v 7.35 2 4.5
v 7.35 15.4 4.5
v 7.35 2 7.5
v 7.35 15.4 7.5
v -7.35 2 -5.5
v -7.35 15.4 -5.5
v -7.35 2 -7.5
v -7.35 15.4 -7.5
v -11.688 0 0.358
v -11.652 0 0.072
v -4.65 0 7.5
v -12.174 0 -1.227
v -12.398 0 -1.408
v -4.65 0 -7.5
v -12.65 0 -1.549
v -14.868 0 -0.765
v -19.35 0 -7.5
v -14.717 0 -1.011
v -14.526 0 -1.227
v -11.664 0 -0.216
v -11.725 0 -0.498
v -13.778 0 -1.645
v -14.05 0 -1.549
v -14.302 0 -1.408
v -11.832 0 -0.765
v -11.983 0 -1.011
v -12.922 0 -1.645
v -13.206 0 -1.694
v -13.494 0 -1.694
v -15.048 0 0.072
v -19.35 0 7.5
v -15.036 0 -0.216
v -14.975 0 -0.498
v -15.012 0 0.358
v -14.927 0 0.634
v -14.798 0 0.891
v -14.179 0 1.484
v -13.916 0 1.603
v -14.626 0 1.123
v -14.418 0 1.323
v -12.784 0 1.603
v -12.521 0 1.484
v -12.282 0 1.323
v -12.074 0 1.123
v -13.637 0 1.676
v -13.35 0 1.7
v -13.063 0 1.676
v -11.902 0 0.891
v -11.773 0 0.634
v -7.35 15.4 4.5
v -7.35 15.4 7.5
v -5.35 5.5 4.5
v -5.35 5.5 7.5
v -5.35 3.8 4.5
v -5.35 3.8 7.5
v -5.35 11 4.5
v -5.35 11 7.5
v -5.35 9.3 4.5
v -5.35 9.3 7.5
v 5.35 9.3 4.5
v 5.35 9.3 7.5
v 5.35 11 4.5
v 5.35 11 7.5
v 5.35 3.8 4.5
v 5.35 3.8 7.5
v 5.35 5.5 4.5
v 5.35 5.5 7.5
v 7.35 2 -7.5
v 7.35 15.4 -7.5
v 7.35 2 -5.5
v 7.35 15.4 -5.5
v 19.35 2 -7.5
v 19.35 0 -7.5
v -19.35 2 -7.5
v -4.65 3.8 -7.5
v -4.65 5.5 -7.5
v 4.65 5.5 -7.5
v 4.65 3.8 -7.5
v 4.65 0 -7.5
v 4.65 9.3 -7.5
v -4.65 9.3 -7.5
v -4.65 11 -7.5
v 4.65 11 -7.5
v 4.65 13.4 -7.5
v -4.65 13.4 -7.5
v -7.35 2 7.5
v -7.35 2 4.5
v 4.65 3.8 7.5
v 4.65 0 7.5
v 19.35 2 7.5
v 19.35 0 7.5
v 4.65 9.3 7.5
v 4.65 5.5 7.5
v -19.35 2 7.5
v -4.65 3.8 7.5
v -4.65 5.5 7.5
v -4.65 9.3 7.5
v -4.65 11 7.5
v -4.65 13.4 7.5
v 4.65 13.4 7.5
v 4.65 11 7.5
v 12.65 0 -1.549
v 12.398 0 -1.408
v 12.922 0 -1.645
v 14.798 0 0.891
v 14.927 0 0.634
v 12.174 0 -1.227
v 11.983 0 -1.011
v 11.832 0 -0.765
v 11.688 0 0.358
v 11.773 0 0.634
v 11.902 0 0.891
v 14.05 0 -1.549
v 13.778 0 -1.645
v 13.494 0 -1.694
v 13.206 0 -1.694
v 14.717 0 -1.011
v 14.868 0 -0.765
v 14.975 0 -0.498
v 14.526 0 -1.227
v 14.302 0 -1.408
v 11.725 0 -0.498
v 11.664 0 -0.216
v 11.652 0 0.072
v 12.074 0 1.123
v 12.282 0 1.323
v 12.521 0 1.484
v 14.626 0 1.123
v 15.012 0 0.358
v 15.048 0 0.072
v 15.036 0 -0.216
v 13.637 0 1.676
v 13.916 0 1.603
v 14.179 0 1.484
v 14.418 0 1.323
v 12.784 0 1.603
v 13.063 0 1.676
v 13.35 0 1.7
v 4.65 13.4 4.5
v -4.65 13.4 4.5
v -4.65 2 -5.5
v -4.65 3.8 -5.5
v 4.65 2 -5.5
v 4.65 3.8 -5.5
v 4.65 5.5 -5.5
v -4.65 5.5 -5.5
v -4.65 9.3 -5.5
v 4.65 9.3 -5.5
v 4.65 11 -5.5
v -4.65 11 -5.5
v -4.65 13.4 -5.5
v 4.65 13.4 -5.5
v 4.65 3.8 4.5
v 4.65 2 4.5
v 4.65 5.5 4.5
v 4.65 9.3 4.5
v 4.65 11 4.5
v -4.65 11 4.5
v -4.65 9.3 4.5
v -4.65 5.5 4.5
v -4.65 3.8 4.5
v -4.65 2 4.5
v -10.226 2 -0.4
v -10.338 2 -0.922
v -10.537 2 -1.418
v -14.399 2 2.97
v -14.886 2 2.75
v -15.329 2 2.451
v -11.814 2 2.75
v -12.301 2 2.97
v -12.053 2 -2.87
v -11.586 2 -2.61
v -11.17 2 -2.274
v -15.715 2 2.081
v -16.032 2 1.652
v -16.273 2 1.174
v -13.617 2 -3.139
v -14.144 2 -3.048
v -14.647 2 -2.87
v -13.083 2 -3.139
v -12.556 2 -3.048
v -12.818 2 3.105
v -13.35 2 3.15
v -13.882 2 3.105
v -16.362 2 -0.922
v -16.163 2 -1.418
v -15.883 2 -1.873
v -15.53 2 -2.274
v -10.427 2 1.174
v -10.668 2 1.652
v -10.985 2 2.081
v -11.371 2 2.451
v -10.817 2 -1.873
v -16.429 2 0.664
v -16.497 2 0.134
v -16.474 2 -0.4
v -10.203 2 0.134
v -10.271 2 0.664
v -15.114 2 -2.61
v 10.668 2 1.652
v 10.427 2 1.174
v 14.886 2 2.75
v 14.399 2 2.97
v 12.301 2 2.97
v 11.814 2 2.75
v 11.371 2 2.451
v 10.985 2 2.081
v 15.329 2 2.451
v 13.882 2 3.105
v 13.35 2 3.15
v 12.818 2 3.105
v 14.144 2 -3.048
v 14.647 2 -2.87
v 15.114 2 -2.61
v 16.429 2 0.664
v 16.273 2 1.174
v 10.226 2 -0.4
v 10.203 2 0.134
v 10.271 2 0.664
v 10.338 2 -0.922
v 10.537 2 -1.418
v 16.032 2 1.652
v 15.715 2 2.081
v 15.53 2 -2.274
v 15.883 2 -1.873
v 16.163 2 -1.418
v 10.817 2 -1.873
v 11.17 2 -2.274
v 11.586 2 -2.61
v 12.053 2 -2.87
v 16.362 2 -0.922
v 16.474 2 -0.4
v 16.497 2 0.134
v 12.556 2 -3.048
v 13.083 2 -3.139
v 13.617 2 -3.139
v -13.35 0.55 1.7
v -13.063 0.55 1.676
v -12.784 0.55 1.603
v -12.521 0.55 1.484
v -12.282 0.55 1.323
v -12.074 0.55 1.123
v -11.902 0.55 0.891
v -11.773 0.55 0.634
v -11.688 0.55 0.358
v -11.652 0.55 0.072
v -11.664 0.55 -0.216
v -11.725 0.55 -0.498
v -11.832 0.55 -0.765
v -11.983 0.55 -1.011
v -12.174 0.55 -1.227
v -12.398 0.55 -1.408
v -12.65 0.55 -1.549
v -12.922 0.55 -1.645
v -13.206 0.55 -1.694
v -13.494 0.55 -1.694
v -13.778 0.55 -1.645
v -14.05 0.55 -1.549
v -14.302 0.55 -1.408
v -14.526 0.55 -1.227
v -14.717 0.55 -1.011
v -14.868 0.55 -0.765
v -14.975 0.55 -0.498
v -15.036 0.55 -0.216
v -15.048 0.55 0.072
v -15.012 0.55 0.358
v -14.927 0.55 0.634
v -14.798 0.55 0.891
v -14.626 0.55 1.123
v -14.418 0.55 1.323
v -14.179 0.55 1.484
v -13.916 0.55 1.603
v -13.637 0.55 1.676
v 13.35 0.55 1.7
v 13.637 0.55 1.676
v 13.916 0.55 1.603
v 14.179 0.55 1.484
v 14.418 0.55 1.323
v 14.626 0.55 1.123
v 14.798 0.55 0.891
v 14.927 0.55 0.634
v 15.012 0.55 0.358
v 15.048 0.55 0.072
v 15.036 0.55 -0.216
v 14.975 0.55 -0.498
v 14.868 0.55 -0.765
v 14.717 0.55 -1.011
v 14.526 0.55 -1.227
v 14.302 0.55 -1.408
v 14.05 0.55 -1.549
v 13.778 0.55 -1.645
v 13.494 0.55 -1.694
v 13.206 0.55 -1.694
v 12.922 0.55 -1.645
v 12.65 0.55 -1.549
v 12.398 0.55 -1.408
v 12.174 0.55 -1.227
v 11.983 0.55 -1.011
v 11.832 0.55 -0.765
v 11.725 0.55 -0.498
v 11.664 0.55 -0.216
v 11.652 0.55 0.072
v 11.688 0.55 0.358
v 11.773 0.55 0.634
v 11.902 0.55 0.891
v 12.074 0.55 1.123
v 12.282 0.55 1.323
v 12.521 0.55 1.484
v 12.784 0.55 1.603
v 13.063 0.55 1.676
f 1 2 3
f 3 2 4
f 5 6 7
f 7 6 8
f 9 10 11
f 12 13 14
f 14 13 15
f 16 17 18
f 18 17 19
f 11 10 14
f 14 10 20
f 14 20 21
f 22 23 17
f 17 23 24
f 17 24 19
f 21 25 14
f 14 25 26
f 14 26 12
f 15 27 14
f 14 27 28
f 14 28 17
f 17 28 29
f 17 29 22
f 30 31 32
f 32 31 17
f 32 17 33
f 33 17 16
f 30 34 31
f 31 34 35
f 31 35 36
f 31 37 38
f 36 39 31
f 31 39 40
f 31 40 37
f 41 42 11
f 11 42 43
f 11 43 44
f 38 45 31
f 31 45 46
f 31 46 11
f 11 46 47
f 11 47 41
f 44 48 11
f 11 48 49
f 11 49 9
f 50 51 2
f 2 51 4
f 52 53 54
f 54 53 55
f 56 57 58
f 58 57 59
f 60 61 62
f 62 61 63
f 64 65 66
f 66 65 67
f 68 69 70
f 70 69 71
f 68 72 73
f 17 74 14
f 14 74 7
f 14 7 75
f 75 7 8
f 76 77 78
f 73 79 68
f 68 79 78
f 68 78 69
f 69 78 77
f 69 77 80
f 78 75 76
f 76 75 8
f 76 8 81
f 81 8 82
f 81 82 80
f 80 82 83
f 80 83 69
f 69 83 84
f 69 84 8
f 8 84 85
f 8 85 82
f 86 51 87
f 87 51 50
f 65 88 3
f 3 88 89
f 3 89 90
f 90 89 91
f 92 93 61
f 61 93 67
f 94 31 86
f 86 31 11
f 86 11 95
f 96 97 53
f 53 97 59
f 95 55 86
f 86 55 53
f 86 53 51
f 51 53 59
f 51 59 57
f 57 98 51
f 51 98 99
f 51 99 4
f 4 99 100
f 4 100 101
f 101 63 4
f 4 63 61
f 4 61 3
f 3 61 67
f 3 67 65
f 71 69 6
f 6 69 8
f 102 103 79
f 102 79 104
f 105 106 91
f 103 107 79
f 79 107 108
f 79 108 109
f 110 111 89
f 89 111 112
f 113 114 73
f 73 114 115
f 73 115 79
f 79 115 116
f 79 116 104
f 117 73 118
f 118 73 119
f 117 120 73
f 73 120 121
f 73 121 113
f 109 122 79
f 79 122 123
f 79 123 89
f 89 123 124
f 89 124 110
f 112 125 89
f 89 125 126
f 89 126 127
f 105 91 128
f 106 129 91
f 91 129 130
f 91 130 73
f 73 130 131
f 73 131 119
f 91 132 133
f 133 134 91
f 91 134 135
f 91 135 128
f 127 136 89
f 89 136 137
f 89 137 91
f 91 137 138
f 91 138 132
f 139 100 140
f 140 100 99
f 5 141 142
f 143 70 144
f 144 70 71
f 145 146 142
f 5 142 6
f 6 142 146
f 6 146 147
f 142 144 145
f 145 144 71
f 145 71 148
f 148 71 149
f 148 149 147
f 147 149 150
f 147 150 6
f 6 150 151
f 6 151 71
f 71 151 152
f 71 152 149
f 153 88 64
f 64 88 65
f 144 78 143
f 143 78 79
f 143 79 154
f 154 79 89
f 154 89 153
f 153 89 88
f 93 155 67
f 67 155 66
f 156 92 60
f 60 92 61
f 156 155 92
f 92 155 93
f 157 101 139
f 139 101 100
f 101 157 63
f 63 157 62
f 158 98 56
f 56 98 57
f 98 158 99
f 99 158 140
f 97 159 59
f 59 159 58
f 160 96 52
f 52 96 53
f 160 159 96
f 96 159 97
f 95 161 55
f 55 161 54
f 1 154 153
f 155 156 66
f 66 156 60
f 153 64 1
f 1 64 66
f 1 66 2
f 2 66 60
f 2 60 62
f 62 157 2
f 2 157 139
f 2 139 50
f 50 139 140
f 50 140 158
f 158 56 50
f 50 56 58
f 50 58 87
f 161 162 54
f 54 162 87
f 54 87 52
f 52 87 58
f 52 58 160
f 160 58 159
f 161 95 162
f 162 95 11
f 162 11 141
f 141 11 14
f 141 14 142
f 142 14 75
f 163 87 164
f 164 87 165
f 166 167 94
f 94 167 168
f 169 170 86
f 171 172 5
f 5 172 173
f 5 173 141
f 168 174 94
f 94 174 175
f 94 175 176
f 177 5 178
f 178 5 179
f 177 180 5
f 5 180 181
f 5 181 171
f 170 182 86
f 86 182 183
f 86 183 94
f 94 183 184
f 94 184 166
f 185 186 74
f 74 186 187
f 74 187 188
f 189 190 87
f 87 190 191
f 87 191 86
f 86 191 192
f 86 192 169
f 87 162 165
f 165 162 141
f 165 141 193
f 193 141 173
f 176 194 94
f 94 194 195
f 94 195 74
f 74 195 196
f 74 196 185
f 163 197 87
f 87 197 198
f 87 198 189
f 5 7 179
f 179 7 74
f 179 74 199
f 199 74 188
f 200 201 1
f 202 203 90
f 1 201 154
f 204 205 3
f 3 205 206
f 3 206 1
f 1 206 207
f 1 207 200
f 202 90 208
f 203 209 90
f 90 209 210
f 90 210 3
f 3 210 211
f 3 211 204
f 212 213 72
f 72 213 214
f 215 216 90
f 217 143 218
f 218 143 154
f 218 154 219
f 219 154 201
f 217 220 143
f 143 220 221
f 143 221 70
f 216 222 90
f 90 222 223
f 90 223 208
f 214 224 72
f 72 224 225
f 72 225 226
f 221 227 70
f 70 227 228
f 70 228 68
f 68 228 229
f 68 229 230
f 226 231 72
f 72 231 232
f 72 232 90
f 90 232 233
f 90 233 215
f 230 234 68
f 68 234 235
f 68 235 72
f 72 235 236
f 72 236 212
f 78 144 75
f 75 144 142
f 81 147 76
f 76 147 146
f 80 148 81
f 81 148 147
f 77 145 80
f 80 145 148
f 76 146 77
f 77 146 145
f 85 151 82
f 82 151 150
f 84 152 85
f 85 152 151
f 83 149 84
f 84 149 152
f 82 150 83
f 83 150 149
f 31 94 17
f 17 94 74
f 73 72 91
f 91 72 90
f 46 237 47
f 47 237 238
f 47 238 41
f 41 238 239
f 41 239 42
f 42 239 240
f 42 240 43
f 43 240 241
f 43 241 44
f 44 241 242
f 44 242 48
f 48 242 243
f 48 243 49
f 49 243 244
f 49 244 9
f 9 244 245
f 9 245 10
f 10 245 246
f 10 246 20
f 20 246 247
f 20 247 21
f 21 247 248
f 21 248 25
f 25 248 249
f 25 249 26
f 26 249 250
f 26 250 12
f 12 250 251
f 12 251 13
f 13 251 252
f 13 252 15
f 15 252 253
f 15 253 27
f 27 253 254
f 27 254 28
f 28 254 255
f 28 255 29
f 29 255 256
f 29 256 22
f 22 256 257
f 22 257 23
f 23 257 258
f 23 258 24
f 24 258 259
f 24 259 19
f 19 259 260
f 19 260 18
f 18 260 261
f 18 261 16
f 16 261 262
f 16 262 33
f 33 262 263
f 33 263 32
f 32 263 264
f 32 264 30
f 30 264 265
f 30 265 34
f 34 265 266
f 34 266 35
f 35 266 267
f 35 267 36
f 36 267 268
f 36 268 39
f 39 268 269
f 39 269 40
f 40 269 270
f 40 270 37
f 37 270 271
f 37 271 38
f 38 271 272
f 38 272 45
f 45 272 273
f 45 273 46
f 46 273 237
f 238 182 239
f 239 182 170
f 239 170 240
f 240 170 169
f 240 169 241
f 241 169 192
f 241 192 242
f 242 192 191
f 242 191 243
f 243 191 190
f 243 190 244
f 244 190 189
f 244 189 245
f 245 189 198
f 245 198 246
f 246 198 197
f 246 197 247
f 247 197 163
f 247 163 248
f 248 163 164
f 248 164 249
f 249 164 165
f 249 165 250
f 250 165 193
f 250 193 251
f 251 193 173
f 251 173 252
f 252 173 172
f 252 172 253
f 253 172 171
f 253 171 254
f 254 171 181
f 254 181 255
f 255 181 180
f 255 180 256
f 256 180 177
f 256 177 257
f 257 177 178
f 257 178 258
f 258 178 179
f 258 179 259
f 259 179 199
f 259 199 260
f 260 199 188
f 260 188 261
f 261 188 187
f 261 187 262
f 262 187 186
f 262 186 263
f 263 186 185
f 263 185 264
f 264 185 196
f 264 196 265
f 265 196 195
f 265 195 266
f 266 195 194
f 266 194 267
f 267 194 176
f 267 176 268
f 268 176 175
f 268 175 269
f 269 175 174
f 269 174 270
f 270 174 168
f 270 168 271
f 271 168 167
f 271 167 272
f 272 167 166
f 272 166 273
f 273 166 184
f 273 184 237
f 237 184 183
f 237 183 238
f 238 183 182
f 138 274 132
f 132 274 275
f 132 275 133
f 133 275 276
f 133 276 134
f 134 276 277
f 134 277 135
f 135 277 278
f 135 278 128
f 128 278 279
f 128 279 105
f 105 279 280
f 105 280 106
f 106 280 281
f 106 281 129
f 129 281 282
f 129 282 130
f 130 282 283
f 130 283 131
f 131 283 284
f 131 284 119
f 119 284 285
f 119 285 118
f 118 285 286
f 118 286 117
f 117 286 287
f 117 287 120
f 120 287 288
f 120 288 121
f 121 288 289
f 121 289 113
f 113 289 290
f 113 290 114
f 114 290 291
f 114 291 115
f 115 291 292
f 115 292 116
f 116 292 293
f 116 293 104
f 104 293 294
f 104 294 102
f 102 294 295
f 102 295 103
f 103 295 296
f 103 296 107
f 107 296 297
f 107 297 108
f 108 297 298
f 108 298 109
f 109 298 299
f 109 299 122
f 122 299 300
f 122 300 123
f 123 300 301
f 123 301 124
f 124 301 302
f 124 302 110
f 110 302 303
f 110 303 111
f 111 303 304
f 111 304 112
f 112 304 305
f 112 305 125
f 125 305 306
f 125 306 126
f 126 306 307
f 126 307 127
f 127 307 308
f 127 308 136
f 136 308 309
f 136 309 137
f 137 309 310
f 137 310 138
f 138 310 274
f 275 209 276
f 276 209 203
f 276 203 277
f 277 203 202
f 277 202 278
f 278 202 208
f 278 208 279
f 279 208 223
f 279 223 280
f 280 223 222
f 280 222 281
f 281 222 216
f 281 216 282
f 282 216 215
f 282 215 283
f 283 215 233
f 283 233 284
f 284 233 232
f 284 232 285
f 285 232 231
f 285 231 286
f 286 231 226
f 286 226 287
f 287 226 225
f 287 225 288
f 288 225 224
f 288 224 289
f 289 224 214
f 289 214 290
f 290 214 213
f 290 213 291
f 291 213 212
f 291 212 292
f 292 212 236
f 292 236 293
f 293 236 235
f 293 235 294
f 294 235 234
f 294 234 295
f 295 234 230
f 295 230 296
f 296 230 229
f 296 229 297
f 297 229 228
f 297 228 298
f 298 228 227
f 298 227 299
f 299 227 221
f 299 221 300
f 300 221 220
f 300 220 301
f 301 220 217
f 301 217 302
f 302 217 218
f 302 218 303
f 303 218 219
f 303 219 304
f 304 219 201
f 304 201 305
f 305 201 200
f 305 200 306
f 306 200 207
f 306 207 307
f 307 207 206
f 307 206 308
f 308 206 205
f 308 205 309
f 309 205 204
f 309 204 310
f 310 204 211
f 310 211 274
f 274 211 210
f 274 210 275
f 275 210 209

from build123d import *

# Parameters (mm, degrees)
SKETCH1_W                = 14.7
SKETCH1_H                = 15
BOSS_EXTRUDE1_DEPTH      = 15.4
SKETCH2_W                = 10.7
SKETCH2_H                = 14.684086862
CUT_EXTRUDE1_DEPTH       = 13
SKETCH4_W                = 2.7
SKETCH4_H                = 3.8
BOSS_EXTRUDE2_DEPTH      = 3
SKETCH5_W                = 10
SKETCH5_H                = 13.4
CUT_EXTRUDE2_DEPTH       = 23.572106681
SKETCH6_W                = 9.3
SKETCH6_H                = 3.8
SKETCH6_H_2              = 2.4
CUT_EXTRUDE3_DEPTH       = 23.719650085
BOSS_EXTRUDE3_DEPTH      = 12
BOSS_EXTRUDE3_DEPTH_BACK = 2.7
SKETCH7_W                = 15
SKETCH7_H                = 2
BOSS_EXTRUDE4_DEPTH      = 12
BOSS_EXTRUDE4_DEPTH_BACK = 2.7
SKETCH8_W                = 15
SKETCH8_H                = 2


with BuildPart() as part:
    # Sketch1 → Boss-Extrude1 (new body)
    with BuildSketch(Plane(origin=(0, 0, 0), x_dir=(1, 0, 0), z_dir=(0, 1, 0))):
        Rectangle(SKETCH1_W, SKETCH1_H)
    extrude(amount=BOSS_EXTRUDE1_DEPTH)

    # Sketch2 → Cut-Extrude1 (cut)
    with BuildSketch(Plane.XY.offset(7.5)):
        with Locations((0, 6.057956569)):
            Rectangle(SKETCH2_W, SKETCH2_H)
    extrude(amount=-CUT_EXTRUDE1_DEPTH, mode=Mode.SUBTRACT)

    # Sketch4 → Boss-Extrude2 (add)
    with BuildSketch(Plane.XY.offset(7.5)):
        with Locations((-6, 7.4)):
            Rectangle(SKETCH4_W, SKETCH4_H)
        with Locations((-6, 12.9)):
            Rectangle(SKETCH4_W, SKETCH4_H)
        with Locations((6, 12.9)):
            Rectangle(SKETCH4_W, SKETCH4_H)
        with Locations((6, 7.4)):
            Rectangle(SKETCH4_W, SKETCH4_H)
        with Locations((-6, 1.9)):
            Rectangle(SKETCH4_W, SKETCH4_H)
        with Locations((6, 1.9)):
            Rectangle(SKETCH4_W, SKETCH4_H)
    extrude(amount=-BOSS_EXTRUDE2_DEPTH)

    # Sketch5 → Cut-Extrude2 (cut, through all)
    with BuildSketch(Plane(origin=(7.35, 0, 0), x_dir=(0, 0, -1), z_dir=(1, 0, 0))):
        with Locations((0.5, 8.7)):
            Rectangle(SKETCH5_W, SKETCH5_H)
    extrude(amount=-CUT_EXTRUDE2_DEPTH, mode=Mode.SUBTRACT)

    # Sketch6 → Cut-Extrude3 (cut, through all)
    with BuildSketch(Plane.XY.offset(7.5)):
        with Locations((0, 7.4)):
            Rectangle(SKETCH6_W, SKETCH6_H)
        with Locations((0, 1.9)):
            Rectangle(SKETCH6_W, SKETCH6_H)
        with Locations((0, 12.2)):
            Rectangle(SKETCH6_W, SKETCH6_H_2)
    extrude(amount=-CUT_EXTRUDE3_DEPTH, mode=Mode.SUBTRACT)

    # Sketch7 → Boss-Extrude3 (add, two sides: drawn at the far end of the back side and taken through both)
    with BuildSketch(Plane.ZY.offset(7.35).offset(-BOSS_EXTRUDE3_DEPTH_BACK)):
        with Locations((0, 1)):
            Rectangle(SKETCH7_W, SKETCH7_H)
    extrude(amount=BOSS_EXTRUDE3_DEPTH + BOSS_EXTRUDE3_DEPTH_BACK)

    # Sketch8 → Boss-Extrude4 (add, two sides: drawn at the far end of the back side and taken through both)
    with BuildSketch(Plane(origin=(7.35, 0, 0), x_dir=(0, 0, -1), z_dir=(1, 0, 0)).offset(-BOSS_EXTRUDE4_DEPTH_BACK)):
        with Locations((0, 1)):
            Rectangle(SKETCH8_W, SKETCH8_H)
    extrude(amount=BOSS_EXTRUDE4_DEPTH + BOSS_EXTRUDE4_DEPTH_BACK)

    # Sketch10 → CSK for M3 Flat Head Machine Screw1 (revolve, cut)
    with BuildSketch(Plane(origin=(-13.35, 2, 0), x_dir=(0, 0, 1), z_dir=(1, 0, 0))):
        Polygon((0, 0), (0, 2), (1.7, 2), (1.7, 1.45), (3.15, 0), align=None)
    revolve(axis=Axis((-13.35, 8.35, 0), (0, -1, 0)), mode=Mode.SUBTRACT)

    # Sketch12 → CSK for M3 Flat Head Machine Screw2 (revolve, cut)
    with BuildSketch(Plane(origin=(13.35, 2, 0), x_dir=(0, 0, 1), z_dir=(1, 0, 0))):
        Polygon((0, 0), (0, 2), (1.7, 2), (1.7, 1.45), (3.15, 0), align=None)
    revolve(axis=Axis((13.35, 8.35, 0), (0, -1, 0)), mode=Mode.SUBTRACT)


solid = part.part
